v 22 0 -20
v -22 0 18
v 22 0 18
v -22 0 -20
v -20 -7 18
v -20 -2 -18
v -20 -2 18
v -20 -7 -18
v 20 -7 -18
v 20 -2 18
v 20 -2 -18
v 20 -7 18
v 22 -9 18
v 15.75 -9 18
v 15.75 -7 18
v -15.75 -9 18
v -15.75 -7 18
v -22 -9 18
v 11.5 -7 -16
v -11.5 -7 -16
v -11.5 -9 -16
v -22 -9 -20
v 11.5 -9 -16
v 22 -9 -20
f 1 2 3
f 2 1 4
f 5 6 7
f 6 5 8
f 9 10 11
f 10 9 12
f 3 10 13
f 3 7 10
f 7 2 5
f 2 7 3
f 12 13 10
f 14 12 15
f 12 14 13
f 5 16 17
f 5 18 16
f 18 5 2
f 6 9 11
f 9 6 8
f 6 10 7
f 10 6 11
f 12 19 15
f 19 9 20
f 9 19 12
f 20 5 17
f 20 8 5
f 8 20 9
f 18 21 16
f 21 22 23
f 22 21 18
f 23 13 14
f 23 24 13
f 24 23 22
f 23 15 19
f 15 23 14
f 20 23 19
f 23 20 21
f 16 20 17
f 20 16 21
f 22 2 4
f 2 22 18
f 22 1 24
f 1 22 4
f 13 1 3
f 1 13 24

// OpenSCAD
rotate([-90,0,180]) {
    // clamp pad surface
    linear_extrude(2)square([40,36], true);

    // clamp pad back w/cutouts
    translate([0,0,7])
    linear_extrude(2)
    difference(){
    square([40,36], true);
        polygon([
            [-11.5,16],[11.5,16],[16,-20],[-16,-20],[-11.5,16]
        ]);
    }


    //walls
    linear_extrude(9){
    translate([-21,0,0])
    square([2,36], true);
    translate([21,0,0])
    square([2,36], true);
    translate([0,19,0])
    square([44,2], true);
    }
}
